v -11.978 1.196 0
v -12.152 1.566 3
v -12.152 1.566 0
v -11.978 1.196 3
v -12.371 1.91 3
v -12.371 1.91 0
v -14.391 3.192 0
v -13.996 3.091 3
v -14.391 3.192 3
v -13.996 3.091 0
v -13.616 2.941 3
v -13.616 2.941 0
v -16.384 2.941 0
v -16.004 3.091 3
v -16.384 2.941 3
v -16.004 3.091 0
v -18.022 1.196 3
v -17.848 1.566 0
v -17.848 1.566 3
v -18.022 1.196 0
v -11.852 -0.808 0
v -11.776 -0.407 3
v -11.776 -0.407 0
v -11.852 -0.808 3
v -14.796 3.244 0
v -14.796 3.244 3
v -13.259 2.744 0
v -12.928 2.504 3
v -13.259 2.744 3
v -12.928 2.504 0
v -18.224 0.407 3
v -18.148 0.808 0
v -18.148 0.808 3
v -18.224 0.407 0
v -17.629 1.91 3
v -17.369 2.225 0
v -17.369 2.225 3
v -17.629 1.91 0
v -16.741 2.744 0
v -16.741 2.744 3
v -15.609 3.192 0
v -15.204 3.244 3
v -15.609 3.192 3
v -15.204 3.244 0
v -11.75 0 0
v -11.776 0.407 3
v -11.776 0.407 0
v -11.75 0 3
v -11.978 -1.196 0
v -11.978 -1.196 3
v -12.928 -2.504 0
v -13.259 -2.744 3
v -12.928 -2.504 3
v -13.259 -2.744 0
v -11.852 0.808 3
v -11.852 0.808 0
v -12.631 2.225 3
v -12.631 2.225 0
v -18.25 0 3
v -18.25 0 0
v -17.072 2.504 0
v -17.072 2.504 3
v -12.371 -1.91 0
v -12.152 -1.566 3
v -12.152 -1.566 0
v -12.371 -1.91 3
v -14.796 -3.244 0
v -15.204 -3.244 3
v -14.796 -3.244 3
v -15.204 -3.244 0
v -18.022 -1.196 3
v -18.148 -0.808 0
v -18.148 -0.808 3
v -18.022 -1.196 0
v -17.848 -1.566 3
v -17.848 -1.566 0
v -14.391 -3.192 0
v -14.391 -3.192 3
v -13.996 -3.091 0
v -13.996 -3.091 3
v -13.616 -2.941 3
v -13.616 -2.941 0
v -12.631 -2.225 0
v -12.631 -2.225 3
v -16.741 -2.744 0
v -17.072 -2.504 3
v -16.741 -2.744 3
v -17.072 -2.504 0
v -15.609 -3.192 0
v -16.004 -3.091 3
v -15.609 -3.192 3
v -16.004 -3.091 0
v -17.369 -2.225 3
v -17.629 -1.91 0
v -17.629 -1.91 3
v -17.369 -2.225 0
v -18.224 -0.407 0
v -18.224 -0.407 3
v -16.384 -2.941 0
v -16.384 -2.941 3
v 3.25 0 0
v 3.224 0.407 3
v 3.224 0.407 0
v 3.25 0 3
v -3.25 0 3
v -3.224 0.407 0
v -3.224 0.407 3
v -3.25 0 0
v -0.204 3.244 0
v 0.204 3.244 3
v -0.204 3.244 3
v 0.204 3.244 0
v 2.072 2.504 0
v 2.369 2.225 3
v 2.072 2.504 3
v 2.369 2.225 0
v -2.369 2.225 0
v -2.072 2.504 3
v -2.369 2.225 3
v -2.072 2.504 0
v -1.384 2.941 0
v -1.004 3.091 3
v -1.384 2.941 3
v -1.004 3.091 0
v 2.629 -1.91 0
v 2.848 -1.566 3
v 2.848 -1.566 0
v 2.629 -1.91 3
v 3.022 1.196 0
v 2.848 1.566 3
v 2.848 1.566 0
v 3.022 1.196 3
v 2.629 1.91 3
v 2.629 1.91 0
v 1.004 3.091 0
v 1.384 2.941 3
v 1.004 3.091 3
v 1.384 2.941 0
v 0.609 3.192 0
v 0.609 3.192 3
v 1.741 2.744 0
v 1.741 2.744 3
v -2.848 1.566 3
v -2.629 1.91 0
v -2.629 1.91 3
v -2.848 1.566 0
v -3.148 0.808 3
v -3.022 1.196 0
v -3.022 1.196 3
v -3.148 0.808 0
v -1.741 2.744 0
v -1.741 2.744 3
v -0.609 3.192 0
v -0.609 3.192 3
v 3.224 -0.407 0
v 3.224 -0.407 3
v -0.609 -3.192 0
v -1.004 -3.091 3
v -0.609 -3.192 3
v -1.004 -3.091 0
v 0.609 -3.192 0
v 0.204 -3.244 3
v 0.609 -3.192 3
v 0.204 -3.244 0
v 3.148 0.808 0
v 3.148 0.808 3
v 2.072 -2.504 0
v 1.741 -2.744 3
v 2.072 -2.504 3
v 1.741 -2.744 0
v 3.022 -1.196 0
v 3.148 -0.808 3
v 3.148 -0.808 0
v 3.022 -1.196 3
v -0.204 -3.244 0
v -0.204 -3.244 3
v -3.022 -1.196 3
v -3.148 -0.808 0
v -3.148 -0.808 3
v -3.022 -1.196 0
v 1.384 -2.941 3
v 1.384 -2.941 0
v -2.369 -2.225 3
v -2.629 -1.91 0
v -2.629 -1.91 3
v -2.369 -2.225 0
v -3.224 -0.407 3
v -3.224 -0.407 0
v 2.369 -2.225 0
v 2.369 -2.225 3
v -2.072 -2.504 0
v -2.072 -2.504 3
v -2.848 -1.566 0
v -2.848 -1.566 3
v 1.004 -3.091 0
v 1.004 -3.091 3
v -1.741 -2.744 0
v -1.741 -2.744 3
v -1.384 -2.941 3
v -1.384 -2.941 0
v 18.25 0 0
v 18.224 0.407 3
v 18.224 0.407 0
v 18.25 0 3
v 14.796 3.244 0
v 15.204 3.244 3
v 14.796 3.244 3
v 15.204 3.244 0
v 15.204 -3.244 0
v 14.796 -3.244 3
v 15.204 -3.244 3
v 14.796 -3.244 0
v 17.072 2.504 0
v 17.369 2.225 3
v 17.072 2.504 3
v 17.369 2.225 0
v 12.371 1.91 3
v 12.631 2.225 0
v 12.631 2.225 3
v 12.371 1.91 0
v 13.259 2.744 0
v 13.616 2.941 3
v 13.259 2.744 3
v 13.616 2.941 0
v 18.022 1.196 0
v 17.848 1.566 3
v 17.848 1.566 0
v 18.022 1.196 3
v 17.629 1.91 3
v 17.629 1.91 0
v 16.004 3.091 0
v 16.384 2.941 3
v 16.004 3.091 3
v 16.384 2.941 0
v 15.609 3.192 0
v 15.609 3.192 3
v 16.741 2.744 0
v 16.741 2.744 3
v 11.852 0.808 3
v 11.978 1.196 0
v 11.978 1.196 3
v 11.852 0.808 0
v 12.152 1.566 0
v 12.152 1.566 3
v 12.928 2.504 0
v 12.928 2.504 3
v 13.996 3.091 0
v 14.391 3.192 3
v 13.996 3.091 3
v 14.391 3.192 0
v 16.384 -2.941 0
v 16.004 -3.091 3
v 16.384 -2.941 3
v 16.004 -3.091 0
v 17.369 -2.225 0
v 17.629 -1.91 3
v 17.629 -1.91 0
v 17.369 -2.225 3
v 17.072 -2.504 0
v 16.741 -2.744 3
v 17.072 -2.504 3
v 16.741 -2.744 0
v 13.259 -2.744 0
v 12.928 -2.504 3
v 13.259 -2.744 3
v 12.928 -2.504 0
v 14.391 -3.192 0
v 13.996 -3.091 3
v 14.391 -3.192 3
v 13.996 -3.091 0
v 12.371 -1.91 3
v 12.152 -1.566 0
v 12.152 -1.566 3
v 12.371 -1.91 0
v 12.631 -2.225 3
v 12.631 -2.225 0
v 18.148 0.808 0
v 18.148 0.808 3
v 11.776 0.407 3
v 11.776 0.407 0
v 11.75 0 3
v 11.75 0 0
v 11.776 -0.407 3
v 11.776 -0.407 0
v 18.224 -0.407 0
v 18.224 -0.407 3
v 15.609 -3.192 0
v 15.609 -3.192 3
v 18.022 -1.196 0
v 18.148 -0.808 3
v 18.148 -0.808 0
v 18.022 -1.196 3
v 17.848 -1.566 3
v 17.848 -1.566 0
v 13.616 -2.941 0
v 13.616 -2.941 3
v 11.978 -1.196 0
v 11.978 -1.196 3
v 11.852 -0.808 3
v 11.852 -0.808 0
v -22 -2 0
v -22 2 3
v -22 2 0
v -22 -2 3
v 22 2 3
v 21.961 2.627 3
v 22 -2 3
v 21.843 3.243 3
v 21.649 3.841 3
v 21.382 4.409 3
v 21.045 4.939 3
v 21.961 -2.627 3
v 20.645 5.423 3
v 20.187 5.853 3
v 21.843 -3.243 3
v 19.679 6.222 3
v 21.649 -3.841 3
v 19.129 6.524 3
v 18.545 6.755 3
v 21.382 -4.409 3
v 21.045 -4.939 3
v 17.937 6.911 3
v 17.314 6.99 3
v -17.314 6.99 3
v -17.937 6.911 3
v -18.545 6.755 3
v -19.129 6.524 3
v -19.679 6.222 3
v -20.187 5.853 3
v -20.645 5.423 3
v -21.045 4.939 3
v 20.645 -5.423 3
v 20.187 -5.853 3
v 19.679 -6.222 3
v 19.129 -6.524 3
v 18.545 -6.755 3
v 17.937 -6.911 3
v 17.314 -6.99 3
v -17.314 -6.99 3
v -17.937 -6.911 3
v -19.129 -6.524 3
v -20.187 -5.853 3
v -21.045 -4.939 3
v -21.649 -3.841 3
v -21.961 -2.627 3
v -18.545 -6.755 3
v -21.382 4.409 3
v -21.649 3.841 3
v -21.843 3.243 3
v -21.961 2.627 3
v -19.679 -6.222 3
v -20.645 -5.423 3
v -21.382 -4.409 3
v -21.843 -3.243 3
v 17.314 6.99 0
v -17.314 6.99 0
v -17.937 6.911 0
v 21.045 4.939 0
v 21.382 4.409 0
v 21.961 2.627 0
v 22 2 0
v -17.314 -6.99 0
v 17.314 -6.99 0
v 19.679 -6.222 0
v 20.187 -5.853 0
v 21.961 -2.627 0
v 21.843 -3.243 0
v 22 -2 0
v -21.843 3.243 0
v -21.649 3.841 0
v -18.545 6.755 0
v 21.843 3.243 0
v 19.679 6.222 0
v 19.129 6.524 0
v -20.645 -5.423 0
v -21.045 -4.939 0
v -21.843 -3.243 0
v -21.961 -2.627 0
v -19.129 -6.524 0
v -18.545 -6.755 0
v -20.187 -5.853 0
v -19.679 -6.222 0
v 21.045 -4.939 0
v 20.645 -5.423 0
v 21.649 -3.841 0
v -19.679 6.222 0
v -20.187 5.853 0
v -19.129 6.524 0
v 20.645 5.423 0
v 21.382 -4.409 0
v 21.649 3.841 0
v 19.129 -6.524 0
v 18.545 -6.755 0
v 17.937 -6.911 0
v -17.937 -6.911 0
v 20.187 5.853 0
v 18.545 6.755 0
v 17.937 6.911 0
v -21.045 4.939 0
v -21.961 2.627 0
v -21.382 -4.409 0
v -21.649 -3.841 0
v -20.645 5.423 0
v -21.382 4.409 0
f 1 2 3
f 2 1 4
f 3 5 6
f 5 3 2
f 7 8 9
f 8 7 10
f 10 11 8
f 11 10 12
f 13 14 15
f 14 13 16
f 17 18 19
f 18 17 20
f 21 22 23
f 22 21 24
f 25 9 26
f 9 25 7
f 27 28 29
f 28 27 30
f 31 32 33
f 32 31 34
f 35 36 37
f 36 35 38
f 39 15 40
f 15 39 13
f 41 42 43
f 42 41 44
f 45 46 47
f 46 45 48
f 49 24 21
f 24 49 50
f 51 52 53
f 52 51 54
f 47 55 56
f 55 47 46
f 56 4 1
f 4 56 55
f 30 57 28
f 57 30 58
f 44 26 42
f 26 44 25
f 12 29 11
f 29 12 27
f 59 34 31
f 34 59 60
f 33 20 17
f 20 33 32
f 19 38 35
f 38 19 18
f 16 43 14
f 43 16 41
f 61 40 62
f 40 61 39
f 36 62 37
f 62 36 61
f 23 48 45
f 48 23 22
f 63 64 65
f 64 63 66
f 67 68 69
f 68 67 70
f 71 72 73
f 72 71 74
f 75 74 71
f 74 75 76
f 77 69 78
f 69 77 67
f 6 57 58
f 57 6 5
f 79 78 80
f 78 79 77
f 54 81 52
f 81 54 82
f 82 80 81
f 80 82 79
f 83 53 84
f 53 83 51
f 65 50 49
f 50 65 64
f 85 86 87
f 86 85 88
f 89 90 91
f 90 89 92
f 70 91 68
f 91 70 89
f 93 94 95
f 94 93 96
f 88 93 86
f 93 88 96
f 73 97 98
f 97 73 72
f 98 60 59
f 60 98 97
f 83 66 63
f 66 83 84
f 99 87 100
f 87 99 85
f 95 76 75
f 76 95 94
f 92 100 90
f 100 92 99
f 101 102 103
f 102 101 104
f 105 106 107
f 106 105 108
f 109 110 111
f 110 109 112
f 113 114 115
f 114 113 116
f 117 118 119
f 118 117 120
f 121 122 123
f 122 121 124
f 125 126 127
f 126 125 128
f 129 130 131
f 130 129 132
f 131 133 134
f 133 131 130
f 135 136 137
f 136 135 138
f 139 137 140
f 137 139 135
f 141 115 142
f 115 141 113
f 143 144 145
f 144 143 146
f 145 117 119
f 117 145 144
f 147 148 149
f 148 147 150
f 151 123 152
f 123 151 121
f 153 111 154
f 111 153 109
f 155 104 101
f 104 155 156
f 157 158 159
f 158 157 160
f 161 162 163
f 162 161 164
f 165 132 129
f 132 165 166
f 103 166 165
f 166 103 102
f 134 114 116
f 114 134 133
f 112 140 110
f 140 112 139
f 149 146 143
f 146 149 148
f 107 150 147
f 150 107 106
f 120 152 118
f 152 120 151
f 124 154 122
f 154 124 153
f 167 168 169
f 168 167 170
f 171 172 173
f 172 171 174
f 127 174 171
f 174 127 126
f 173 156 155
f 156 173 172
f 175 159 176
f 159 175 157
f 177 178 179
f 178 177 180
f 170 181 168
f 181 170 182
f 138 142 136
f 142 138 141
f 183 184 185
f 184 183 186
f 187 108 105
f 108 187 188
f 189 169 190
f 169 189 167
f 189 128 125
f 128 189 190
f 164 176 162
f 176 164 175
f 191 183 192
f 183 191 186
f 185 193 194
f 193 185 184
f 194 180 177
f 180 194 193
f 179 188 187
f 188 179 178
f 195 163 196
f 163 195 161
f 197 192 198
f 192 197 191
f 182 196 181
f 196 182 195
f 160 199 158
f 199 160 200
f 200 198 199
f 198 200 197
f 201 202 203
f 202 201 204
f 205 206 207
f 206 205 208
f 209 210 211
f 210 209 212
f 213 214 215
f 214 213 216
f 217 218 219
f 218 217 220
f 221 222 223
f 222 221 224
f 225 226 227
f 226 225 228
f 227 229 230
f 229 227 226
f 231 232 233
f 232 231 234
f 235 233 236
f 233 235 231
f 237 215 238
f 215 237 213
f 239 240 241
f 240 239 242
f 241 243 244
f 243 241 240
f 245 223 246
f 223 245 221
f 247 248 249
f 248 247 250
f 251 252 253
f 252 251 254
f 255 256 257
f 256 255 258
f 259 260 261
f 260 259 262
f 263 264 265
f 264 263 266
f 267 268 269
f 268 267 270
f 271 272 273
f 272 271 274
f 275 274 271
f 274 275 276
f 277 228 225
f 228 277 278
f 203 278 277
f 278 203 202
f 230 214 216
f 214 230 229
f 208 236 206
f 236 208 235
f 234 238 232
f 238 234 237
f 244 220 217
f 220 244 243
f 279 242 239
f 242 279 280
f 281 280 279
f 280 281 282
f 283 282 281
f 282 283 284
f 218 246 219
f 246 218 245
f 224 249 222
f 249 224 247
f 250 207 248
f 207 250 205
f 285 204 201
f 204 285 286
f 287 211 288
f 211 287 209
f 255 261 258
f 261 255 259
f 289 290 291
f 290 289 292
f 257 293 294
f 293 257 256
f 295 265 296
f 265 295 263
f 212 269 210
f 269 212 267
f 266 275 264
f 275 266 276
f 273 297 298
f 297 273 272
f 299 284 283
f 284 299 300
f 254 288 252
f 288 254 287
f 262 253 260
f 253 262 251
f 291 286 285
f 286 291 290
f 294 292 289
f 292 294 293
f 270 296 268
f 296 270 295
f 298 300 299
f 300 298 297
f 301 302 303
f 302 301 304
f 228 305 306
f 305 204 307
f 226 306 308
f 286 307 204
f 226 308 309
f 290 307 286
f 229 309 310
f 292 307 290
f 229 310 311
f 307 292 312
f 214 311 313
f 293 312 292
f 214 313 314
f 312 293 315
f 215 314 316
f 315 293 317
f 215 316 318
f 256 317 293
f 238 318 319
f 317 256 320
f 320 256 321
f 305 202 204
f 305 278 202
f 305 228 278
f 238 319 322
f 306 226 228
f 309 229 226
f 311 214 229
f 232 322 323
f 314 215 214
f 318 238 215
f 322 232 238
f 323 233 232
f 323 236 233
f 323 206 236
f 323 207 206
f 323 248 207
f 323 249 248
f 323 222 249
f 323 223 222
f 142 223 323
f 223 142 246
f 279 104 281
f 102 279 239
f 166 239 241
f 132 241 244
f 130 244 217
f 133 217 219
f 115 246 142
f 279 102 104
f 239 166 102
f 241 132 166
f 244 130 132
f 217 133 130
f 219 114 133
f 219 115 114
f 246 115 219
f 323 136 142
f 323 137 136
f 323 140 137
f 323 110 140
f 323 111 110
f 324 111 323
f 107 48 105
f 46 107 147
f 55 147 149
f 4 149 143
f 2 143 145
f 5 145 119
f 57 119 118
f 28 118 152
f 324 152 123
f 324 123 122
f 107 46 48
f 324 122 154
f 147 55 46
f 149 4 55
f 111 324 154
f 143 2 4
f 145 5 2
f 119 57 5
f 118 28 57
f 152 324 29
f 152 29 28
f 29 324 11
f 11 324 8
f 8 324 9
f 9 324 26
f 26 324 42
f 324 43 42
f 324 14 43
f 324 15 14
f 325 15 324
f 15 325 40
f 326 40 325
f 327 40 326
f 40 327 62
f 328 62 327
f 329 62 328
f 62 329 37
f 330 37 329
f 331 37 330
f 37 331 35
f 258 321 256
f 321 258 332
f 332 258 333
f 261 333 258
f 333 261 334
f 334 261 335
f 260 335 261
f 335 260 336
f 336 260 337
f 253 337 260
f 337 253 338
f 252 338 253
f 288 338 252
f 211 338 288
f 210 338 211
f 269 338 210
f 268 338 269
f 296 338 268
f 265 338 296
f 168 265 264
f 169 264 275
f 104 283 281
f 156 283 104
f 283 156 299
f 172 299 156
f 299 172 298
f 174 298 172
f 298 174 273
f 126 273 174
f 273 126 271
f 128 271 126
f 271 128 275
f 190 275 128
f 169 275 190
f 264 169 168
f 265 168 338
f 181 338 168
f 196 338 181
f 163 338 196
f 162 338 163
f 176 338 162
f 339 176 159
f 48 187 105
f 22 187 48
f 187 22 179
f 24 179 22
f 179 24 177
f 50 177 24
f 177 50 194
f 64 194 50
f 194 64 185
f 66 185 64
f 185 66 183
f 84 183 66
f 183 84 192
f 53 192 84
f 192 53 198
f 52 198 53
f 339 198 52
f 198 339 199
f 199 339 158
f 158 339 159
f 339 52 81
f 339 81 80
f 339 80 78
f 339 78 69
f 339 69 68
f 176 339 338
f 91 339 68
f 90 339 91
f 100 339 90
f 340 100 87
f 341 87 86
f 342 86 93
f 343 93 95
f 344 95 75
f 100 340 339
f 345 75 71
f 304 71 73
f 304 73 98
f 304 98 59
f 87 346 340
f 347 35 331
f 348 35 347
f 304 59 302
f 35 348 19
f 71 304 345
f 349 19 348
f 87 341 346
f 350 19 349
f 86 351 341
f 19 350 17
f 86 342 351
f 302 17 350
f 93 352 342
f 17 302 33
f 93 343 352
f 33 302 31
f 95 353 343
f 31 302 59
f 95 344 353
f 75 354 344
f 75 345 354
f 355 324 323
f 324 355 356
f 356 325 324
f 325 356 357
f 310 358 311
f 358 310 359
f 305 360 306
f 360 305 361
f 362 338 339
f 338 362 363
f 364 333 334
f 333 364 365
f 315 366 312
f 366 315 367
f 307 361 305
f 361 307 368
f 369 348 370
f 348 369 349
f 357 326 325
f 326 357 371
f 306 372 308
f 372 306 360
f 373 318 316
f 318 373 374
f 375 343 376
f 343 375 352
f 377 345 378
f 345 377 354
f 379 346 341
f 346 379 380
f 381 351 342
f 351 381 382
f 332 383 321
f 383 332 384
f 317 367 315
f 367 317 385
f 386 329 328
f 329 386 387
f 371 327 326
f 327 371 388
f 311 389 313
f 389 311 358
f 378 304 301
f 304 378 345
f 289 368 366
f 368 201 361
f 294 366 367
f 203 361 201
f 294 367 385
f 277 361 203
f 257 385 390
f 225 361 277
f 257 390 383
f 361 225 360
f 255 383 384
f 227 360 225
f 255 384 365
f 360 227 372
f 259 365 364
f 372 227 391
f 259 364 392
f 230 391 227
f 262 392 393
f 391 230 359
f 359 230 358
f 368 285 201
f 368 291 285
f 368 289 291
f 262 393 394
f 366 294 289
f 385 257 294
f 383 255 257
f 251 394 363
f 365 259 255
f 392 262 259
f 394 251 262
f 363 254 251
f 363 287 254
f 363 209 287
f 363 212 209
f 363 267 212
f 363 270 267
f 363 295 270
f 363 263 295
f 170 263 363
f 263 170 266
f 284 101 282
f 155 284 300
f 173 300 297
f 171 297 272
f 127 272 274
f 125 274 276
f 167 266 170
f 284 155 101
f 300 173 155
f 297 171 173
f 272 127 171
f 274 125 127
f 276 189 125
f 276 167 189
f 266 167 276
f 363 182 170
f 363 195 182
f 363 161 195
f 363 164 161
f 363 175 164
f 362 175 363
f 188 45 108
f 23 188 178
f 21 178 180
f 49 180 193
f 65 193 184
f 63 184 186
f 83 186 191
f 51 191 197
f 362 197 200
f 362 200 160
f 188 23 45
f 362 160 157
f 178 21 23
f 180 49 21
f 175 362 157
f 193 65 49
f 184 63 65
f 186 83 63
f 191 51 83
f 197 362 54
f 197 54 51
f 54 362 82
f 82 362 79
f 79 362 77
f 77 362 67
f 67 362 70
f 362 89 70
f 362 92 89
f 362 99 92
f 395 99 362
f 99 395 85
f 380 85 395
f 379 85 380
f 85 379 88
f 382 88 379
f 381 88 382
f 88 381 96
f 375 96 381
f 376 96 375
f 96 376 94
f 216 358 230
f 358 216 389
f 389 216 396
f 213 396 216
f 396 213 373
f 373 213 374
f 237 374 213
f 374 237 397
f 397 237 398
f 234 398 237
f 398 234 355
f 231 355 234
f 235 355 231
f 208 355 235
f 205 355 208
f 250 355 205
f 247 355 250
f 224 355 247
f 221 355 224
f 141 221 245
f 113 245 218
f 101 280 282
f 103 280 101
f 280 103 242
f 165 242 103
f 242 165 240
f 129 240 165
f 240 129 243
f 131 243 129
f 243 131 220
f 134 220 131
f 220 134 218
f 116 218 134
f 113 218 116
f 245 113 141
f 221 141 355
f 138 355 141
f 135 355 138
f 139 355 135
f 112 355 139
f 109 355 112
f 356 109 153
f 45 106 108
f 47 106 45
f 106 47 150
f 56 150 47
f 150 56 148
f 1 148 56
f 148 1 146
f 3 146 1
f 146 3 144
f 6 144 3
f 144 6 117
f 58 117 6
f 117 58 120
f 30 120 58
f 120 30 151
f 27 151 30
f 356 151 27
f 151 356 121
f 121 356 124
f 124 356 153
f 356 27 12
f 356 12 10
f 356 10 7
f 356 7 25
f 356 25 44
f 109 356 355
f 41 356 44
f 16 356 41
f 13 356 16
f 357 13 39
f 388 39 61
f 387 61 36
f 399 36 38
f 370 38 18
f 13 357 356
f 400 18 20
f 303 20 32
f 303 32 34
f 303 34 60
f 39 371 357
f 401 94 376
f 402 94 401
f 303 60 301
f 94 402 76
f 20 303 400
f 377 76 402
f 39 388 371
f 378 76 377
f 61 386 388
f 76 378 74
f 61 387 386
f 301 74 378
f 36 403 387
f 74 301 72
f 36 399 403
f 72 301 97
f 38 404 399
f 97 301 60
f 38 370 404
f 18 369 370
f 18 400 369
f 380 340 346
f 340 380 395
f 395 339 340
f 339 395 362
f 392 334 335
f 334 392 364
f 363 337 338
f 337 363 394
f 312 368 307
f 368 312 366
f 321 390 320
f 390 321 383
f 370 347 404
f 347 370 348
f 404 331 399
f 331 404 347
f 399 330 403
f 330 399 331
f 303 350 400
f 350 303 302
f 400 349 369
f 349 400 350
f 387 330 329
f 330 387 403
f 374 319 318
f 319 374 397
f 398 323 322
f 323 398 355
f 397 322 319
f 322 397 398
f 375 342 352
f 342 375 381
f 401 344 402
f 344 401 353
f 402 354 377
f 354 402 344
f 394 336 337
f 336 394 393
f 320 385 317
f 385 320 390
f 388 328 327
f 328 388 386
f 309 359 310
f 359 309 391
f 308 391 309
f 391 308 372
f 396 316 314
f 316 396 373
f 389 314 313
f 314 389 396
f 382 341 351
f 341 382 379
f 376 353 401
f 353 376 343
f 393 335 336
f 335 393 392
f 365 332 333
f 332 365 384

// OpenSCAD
$fn = 50;


difference() {
	union() {
		hull() {
			translate(v = [-17.0000000000, 2.0000000000, 0]) {
				cylinder(h = 3, r = 5);
			}
			translate(v = [17.0000000000, 2.0000000000, 0]) {
				cylinder(h = 3, r = 5);
			}
			translate(v = [-17.0000000000, -2.0000000000, 0]) {
				cylinder(h = 3, r = 5);
			}
			translate(v = [17.0000000000, -2.0000000000, 0]) {
				cylinder(h = 3, r = 5);
			}
		}
	}
	union() {
		translate(v = [-15.0000000000, 0.0000000000, 0]) {
			translate(v = [0, 0, -100]) {
				cylinder(h = 200, r = 3.2500000000);
			}
		}
		translate(v = [0, 0, -100]) {
			cylinder(h = 200, r = 3.2500000000);
		}
		translate(v = [15.0000000000, 0.0000000000, 0]) {
			translate(v = [0, 0, -100]) {
				cylinder(h = 200, r = 3.2500000000);
			}
		}
	}
}
